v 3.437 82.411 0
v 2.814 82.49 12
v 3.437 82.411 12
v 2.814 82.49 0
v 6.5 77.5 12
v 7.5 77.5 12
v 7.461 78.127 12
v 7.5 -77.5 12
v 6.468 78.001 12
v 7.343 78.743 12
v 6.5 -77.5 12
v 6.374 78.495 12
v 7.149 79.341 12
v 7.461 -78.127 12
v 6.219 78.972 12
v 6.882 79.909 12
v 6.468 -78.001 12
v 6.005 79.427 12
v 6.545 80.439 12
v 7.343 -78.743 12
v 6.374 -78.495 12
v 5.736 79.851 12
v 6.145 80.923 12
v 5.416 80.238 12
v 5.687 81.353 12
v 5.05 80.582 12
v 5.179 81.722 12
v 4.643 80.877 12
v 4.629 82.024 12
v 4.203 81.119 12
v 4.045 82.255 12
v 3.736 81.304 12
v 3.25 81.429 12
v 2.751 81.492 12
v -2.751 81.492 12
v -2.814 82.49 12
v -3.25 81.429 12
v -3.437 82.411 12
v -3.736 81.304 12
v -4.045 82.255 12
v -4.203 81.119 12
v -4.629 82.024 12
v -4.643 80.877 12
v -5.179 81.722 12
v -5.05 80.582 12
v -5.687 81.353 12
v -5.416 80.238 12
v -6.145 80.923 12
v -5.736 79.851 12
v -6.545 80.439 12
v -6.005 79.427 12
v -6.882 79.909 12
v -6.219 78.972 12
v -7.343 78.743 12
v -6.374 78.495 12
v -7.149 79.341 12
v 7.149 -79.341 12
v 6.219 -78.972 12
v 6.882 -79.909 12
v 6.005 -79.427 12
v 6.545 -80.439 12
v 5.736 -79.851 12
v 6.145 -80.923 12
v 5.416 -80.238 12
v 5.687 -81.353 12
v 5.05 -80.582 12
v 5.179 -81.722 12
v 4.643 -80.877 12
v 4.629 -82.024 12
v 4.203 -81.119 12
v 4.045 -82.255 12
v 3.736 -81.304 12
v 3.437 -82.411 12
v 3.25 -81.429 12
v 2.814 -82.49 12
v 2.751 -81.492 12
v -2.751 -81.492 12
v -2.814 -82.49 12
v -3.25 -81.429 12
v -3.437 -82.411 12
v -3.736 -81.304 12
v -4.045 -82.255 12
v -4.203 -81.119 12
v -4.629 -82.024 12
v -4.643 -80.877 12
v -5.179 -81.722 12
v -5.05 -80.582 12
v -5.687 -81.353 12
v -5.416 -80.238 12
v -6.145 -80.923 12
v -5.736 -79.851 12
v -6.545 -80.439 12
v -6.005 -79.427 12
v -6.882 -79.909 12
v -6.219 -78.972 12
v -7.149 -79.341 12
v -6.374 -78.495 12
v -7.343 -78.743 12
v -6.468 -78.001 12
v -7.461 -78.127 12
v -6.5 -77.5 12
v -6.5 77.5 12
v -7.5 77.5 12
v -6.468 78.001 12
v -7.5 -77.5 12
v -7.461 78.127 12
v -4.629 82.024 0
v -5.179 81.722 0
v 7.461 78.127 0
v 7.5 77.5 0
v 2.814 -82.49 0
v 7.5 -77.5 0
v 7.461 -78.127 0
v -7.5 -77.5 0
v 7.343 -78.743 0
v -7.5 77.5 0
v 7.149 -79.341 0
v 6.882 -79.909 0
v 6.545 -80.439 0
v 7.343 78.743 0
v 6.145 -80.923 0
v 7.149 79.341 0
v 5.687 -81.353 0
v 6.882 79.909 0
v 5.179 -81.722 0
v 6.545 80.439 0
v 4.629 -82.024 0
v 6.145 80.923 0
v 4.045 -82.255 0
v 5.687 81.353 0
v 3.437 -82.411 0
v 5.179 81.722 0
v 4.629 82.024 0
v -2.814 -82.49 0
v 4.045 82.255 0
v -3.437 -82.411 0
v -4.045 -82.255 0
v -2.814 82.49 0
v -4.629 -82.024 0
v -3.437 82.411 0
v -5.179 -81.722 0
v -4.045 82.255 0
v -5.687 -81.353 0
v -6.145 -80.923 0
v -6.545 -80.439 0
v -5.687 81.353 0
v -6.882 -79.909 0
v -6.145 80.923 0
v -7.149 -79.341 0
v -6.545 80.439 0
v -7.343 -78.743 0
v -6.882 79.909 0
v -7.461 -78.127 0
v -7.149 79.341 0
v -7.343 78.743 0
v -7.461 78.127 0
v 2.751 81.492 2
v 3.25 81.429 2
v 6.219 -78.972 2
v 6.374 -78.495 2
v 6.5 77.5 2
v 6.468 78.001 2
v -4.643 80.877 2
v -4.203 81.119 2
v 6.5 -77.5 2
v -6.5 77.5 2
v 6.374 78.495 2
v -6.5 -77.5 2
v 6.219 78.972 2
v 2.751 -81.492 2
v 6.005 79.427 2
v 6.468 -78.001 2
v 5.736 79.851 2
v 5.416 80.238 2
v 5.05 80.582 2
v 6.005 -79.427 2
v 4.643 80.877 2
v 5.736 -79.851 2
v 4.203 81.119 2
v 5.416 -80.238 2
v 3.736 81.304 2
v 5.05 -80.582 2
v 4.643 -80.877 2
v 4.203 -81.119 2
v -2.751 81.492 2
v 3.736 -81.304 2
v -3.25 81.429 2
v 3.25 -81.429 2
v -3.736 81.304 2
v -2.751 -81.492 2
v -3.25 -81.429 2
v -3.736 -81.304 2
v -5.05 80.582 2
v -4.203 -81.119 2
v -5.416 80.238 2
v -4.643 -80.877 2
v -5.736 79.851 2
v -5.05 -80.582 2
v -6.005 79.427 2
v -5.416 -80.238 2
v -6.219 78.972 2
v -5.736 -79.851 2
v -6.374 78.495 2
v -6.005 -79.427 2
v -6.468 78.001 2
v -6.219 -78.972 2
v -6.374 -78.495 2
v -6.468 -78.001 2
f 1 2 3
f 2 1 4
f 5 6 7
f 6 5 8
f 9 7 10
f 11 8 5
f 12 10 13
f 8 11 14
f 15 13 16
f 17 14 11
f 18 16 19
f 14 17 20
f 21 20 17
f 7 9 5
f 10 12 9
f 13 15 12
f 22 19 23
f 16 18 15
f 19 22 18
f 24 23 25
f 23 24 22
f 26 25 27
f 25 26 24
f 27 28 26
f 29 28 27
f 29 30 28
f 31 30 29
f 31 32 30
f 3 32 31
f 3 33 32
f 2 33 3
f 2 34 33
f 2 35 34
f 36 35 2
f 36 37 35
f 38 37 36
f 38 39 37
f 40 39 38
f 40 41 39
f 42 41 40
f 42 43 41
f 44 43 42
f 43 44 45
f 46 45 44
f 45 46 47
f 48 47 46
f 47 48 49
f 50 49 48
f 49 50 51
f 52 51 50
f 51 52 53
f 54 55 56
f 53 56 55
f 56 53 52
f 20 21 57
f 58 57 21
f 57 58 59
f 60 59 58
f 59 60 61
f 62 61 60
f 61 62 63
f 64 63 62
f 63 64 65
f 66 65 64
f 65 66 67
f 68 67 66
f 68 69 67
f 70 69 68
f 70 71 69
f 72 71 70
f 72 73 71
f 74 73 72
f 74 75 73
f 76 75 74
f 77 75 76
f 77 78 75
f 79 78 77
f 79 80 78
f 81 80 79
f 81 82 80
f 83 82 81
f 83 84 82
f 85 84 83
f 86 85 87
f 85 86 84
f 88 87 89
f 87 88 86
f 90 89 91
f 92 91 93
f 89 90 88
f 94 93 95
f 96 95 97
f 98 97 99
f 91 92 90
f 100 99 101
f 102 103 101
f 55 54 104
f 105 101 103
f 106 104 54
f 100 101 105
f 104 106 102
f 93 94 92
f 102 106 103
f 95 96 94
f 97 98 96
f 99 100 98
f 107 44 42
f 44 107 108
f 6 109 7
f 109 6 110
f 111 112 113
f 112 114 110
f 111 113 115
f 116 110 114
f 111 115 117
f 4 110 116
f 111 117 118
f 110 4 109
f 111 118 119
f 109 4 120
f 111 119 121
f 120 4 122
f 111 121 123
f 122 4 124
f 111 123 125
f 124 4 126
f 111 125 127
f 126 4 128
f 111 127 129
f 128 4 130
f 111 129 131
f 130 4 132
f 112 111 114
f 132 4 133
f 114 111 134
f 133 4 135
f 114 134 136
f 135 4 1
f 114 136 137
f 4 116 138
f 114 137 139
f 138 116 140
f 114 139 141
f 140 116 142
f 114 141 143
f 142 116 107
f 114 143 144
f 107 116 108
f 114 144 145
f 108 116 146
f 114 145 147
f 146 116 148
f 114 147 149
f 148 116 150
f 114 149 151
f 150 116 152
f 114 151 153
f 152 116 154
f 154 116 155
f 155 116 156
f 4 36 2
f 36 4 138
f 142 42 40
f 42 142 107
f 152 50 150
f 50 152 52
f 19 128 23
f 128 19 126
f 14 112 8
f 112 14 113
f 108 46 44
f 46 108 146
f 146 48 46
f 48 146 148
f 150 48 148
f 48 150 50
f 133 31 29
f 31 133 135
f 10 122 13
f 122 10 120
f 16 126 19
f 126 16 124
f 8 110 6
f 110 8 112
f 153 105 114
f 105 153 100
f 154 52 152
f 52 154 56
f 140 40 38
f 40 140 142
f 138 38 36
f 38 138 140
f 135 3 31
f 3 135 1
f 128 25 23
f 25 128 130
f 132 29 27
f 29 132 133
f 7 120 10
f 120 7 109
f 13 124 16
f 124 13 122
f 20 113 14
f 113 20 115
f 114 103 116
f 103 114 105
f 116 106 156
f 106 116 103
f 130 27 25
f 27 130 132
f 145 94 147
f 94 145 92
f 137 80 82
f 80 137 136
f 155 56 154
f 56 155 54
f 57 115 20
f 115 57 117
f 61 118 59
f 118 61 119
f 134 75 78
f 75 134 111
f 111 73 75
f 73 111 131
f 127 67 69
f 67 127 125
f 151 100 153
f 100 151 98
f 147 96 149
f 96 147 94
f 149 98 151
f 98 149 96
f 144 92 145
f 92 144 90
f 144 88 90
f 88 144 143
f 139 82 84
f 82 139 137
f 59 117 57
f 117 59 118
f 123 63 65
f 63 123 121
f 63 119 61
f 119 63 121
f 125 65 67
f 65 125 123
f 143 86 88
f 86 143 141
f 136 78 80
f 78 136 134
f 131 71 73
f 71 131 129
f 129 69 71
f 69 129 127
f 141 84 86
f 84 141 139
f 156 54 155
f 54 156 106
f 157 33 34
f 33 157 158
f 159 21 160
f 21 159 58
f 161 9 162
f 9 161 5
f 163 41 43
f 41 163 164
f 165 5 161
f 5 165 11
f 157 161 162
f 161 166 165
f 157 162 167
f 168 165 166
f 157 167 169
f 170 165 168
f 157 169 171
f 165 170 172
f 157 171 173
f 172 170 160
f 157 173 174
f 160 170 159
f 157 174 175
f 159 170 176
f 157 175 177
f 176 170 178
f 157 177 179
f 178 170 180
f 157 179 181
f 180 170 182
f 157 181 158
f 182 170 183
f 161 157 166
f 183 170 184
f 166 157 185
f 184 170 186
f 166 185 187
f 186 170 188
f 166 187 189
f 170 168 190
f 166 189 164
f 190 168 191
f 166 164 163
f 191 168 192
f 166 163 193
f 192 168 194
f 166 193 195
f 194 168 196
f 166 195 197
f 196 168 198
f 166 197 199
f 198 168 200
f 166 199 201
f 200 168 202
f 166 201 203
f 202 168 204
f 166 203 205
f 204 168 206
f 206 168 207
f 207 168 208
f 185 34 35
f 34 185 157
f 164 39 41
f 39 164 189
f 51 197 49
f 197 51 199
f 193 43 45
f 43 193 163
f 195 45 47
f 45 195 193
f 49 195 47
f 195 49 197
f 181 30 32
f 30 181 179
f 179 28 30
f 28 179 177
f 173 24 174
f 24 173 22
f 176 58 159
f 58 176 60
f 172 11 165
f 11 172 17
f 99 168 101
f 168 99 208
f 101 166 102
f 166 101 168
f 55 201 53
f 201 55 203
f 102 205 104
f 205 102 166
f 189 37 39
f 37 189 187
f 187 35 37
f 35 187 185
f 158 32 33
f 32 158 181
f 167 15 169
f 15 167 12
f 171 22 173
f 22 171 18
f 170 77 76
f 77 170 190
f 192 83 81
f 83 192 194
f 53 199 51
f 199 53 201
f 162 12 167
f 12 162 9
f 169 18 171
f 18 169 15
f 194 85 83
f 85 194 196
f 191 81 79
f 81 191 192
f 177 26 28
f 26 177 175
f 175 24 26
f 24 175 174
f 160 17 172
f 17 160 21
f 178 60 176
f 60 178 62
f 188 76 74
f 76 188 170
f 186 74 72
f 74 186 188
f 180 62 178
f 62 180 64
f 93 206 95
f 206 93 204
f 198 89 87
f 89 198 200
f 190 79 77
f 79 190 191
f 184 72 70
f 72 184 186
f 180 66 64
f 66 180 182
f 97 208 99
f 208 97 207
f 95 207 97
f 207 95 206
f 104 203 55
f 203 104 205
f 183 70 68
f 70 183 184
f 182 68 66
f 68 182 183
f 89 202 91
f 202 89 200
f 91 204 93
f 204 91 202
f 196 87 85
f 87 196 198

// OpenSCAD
$fn = 50;


difference() {
	union() {
		hull() {
			translate(v = [-2.5000000000, 77.5000000000, 0]) {
				cylinder(h = 12, r = 5);
			}
			translate(v = [2.5000000000, 77.5000000000, 0]) {
				cylinder(h = 12, r = 5);
			}
			translate(v = [-2.5000000000, -77.5000000000, 0]) {
				cylinder(h = 12, r = 5);
			}
			translate(v = [2.5000000000, -77.5000000000, 0]) {
				cylinder(h = 12, r = 5);
			}
		}
	}
	union() {
		translate(v = [0, 0, 2]) {
			hull() {
				translate(v = [-2.5000000000, 77.5000000000, 0]) {
					cylinder(h = 10, r = 4);
				}
				translate(v = [2.5000000000, 77.5000000000, 0]) {
					cylinder(h = 10, r = 4);
				}
				translate(v = [-2.5000000000, -77.5000000000, 0]) {
					cylinder(h = 10, r = 4);
				}
				translate(v = [2.5000000000, -77.5000000000, 0]) {
					cylinder(h = 10, r = 4);
				}
			}
		}
	}
}
